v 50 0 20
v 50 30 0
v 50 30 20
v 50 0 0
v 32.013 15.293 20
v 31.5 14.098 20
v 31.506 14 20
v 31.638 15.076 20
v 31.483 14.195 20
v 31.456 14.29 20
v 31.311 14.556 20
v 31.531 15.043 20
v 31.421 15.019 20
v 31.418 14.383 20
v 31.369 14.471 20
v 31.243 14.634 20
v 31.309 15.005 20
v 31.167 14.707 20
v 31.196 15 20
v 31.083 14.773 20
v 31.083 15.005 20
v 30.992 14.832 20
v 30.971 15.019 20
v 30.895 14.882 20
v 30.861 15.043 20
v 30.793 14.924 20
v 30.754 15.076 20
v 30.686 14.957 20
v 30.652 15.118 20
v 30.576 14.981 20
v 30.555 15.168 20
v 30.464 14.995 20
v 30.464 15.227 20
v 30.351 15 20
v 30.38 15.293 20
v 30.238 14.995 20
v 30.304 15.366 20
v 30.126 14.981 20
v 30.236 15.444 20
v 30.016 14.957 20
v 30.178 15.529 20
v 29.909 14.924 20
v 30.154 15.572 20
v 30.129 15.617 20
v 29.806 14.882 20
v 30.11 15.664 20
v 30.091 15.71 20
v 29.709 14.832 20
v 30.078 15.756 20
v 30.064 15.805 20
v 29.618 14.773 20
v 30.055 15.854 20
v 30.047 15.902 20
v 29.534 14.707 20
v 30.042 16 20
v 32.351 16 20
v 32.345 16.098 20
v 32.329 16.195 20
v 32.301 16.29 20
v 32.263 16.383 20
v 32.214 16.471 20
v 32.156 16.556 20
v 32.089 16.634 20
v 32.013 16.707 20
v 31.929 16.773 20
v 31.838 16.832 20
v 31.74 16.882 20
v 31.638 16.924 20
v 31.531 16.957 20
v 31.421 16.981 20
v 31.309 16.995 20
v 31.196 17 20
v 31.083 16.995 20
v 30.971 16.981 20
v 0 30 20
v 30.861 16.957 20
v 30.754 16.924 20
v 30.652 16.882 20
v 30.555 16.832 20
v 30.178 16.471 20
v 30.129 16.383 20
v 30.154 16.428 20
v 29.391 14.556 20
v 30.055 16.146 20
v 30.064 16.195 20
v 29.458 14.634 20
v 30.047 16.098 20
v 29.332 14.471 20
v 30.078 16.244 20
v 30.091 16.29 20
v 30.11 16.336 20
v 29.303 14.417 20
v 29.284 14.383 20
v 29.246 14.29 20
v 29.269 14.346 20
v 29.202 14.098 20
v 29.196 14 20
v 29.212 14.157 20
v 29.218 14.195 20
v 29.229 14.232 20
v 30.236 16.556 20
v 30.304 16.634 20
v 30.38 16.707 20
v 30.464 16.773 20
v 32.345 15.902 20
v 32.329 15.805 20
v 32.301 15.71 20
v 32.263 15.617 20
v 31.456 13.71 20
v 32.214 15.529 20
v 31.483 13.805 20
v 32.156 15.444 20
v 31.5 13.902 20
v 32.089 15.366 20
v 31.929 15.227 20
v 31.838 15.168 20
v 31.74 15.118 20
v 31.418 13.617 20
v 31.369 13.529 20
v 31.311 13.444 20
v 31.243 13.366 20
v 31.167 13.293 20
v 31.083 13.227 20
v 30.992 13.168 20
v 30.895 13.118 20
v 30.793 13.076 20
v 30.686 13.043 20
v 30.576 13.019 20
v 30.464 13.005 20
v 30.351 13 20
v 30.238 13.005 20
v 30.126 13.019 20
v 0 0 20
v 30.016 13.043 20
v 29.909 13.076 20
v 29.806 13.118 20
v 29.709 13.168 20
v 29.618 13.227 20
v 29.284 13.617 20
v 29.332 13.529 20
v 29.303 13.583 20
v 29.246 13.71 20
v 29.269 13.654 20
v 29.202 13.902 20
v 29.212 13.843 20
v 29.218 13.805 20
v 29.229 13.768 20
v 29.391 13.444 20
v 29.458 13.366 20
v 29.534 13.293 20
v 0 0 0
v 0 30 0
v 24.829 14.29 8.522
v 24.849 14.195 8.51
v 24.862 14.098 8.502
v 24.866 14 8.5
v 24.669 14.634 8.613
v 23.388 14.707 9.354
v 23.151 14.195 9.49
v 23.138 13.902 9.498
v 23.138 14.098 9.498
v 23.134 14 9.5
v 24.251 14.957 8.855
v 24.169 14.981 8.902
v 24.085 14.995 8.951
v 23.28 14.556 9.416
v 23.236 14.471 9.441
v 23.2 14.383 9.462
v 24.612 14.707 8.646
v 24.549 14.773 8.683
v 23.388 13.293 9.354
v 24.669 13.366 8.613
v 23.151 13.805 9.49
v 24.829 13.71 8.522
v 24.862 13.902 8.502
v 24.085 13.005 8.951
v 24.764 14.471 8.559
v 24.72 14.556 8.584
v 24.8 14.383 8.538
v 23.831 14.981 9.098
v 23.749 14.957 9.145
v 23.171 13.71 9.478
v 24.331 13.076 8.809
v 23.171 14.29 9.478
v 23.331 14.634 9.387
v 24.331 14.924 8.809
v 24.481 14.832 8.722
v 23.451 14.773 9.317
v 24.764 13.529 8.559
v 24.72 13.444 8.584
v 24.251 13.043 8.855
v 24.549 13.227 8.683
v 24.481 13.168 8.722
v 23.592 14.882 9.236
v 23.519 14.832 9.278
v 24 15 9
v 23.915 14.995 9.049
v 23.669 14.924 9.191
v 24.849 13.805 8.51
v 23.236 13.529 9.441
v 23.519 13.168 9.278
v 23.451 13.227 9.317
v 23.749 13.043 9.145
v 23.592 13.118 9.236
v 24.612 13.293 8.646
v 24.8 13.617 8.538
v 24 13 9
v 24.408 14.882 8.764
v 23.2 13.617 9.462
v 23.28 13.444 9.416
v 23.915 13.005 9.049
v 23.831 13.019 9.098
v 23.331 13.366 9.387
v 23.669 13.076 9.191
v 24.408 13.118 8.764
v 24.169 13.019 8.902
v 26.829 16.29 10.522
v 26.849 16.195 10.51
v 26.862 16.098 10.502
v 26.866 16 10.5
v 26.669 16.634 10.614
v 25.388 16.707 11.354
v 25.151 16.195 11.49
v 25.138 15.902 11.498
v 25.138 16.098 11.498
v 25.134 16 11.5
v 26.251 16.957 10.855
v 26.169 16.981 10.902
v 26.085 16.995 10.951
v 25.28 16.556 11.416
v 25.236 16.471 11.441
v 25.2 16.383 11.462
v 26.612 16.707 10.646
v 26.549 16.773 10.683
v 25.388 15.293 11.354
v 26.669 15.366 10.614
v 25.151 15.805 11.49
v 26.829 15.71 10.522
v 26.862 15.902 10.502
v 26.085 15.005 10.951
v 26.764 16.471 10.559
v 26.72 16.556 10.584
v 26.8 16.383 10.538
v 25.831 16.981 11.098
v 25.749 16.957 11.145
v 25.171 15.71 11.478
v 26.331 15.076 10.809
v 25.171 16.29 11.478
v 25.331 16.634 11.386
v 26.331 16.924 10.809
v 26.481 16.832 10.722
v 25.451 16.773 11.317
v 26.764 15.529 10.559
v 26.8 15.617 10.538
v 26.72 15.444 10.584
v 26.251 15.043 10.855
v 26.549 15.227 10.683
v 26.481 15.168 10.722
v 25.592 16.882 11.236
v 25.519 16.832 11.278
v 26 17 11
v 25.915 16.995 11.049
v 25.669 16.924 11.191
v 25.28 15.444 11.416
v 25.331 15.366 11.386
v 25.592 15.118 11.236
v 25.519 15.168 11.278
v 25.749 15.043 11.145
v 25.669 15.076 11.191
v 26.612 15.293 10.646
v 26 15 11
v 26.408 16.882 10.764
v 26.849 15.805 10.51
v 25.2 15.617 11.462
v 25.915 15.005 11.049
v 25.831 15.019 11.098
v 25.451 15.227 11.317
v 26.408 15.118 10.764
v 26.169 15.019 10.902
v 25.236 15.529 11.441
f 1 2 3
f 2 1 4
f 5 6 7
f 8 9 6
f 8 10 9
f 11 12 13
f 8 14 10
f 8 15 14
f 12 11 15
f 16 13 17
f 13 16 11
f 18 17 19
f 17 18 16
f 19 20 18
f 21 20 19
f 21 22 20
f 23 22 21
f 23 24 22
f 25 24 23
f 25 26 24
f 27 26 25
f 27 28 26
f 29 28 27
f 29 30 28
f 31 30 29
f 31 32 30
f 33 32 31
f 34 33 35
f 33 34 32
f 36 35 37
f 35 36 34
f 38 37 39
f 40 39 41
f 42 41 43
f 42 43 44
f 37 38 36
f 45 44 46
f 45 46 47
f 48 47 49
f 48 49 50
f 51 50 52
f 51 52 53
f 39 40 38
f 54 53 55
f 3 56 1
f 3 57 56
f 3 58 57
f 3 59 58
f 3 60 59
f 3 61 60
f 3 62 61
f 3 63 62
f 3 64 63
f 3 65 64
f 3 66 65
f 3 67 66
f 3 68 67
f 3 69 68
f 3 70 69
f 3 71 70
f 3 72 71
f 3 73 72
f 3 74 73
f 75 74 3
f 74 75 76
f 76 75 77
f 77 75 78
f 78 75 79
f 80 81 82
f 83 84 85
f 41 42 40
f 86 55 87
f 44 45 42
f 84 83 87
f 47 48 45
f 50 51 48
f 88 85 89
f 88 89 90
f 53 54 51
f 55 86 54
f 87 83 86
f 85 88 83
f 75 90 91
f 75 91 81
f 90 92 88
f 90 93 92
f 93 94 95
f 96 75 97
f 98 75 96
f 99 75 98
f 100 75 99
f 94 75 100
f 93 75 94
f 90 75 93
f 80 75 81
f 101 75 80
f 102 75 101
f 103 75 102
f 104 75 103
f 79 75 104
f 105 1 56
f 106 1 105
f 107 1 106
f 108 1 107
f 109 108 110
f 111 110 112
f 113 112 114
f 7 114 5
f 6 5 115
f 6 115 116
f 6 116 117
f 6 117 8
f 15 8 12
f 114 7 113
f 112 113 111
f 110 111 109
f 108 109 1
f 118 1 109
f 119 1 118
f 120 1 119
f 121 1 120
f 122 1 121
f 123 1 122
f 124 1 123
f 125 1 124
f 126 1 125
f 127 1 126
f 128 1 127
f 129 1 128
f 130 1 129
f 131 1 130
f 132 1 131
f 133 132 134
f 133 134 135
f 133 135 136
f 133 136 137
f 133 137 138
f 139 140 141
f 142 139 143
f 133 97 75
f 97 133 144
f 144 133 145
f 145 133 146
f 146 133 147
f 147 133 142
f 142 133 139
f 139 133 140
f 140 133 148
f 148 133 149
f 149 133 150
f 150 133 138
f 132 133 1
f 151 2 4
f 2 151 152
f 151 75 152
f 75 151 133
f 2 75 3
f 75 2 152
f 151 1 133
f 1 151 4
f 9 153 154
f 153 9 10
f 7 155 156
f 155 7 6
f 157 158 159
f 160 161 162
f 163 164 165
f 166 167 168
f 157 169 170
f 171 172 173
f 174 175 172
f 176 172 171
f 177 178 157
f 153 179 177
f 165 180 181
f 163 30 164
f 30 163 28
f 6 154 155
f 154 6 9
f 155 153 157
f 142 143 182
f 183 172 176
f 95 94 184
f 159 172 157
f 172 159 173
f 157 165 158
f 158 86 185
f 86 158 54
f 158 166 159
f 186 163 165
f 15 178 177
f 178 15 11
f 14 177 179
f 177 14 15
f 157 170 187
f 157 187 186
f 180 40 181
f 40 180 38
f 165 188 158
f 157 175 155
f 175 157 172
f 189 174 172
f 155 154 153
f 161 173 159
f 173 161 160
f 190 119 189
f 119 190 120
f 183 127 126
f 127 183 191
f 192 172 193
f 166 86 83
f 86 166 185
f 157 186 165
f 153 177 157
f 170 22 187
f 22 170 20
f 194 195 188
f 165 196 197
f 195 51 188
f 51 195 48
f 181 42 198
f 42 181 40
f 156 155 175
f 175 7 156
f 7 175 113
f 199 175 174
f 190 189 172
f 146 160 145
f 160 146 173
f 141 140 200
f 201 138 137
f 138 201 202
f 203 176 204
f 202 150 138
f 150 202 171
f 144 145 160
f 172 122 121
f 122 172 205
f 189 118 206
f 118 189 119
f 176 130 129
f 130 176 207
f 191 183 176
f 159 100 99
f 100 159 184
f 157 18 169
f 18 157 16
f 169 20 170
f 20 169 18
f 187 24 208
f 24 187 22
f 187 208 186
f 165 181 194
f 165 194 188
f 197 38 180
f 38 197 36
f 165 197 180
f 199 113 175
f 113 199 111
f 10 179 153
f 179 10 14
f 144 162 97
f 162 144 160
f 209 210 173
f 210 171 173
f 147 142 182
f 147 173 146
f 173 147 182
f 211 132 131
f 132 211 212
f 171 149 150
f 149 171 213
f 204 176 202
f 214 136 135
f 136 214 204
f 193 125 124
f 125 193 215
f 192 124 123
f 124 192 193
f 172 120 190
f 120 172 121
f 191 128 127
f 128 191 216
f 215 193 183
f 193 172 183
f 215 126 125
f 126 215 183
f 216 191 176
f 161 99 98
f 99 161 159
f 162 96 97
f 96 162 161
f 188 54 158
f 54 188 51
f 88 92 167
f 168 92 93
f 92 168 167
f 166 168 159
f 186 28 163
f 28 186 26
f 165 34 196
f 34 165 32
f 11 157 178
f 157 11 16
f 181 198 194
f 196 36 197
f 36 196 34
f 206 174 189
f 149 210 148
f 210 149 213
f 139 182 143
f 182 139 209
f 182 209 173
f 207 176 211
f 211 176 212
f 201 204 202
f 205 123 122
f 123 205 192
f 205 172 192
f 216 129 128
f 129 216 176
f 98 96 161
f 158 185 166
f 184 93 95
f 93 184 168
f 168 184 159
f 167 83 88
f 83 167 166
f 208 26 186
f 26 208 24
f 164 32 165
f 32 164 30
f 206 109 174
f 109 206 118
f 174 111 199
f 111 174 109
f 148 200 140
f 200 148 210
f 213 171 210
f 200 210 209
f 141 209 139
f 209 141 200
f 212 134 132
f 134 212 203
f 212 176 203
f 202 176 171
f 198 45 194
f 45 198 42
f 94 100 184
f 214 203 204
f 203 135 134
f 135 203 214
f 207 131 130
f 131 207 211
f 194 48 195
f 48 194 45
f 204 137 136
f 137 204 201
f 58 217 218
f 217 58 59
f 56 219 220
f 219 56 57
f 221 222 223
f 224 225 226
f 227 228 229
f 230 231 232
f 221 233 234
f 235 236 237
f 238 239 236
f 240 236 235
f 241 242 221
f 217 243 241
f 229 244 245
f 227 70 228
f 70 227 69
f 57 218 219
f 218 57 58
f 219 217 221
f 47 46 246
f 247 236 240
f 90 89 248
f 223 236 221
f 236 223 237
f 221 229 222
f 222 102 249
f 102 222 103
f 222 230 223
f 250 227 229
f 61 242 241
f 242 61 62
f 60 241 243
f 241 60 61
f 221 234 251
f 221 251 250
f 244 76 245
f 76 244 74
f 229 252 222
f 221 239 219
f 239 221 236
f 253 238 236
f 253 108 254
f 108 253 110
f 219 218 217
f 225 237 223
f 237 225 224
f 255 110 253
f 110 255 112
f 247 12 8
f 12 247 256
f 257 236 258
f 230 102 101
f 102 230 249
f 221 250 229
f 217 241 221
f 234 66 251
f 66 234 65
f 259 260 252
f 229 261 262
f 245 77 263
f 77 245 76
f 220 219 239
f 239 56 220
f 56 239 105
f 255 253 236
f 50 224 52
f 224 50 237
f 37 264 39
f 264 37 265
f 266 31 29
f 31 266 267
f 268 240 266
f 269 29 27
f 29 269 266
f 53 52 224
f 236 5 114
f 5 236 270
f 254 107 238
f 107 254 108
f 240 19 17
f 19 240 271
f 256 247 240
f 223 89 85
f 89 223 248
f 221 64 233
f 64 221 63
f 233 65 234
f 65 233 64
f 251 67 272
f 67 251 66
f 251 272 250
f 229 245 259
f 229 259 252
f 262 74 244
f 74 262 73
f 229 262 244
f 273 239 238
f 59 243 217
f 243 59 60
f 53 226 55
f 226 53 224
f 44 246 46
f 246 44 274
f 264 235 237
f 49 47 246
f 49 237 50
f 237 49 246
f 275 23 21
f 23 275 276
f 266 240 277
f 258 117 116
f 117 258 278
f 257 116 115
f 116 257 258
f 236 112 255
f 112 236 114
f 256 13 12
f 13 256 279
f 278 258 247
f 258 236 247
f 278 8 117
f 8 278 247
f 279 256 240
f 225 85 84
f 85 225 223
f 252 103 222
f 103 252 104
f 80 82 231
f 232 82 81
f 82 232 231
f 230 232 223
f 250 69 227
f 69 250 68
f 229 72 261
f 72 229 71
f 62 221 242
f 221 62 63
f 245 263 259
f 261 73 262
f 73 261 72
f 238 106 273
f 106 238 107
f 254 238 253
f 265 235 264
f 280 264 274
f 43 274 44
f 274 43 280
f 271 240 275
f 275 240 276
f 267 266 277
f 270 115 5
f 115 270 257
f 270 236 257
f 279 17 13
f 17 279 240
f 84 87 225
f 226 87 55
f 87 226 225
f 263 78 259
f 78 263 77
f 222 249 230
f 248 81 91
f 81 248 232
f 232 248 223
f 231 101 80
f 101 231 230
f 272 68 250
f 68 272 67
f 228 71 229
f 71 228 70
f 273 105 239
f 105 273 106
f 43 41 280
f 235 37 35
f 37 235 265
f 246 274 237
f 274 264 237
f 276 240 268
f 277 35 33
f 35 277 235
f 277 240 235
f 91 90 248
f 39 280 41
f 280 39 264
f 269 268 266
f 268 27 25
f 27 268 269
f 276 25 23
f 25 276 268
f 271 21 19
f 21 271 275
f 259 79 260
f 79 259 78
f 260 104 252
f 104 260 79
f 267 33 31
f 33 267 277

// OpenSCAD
module indent(width, height, depth, angle) {
  difference() {
    cube([width, height, depth]);
    translate([width/2 - 1, height/2 - 1, depth/2 - 1])
    rotate([0, angle, 0])
    cylinder(h=depth, r=1, $fn=64);
    translate([width/2 + 1, height/2 + 1, depth/2 + 1])
    rotate([0, angle, 0])
    cylinder(h=depth, r=1, $fn=64);
  }
}

indent(width=50, height=30, depth=20, angle=30);
